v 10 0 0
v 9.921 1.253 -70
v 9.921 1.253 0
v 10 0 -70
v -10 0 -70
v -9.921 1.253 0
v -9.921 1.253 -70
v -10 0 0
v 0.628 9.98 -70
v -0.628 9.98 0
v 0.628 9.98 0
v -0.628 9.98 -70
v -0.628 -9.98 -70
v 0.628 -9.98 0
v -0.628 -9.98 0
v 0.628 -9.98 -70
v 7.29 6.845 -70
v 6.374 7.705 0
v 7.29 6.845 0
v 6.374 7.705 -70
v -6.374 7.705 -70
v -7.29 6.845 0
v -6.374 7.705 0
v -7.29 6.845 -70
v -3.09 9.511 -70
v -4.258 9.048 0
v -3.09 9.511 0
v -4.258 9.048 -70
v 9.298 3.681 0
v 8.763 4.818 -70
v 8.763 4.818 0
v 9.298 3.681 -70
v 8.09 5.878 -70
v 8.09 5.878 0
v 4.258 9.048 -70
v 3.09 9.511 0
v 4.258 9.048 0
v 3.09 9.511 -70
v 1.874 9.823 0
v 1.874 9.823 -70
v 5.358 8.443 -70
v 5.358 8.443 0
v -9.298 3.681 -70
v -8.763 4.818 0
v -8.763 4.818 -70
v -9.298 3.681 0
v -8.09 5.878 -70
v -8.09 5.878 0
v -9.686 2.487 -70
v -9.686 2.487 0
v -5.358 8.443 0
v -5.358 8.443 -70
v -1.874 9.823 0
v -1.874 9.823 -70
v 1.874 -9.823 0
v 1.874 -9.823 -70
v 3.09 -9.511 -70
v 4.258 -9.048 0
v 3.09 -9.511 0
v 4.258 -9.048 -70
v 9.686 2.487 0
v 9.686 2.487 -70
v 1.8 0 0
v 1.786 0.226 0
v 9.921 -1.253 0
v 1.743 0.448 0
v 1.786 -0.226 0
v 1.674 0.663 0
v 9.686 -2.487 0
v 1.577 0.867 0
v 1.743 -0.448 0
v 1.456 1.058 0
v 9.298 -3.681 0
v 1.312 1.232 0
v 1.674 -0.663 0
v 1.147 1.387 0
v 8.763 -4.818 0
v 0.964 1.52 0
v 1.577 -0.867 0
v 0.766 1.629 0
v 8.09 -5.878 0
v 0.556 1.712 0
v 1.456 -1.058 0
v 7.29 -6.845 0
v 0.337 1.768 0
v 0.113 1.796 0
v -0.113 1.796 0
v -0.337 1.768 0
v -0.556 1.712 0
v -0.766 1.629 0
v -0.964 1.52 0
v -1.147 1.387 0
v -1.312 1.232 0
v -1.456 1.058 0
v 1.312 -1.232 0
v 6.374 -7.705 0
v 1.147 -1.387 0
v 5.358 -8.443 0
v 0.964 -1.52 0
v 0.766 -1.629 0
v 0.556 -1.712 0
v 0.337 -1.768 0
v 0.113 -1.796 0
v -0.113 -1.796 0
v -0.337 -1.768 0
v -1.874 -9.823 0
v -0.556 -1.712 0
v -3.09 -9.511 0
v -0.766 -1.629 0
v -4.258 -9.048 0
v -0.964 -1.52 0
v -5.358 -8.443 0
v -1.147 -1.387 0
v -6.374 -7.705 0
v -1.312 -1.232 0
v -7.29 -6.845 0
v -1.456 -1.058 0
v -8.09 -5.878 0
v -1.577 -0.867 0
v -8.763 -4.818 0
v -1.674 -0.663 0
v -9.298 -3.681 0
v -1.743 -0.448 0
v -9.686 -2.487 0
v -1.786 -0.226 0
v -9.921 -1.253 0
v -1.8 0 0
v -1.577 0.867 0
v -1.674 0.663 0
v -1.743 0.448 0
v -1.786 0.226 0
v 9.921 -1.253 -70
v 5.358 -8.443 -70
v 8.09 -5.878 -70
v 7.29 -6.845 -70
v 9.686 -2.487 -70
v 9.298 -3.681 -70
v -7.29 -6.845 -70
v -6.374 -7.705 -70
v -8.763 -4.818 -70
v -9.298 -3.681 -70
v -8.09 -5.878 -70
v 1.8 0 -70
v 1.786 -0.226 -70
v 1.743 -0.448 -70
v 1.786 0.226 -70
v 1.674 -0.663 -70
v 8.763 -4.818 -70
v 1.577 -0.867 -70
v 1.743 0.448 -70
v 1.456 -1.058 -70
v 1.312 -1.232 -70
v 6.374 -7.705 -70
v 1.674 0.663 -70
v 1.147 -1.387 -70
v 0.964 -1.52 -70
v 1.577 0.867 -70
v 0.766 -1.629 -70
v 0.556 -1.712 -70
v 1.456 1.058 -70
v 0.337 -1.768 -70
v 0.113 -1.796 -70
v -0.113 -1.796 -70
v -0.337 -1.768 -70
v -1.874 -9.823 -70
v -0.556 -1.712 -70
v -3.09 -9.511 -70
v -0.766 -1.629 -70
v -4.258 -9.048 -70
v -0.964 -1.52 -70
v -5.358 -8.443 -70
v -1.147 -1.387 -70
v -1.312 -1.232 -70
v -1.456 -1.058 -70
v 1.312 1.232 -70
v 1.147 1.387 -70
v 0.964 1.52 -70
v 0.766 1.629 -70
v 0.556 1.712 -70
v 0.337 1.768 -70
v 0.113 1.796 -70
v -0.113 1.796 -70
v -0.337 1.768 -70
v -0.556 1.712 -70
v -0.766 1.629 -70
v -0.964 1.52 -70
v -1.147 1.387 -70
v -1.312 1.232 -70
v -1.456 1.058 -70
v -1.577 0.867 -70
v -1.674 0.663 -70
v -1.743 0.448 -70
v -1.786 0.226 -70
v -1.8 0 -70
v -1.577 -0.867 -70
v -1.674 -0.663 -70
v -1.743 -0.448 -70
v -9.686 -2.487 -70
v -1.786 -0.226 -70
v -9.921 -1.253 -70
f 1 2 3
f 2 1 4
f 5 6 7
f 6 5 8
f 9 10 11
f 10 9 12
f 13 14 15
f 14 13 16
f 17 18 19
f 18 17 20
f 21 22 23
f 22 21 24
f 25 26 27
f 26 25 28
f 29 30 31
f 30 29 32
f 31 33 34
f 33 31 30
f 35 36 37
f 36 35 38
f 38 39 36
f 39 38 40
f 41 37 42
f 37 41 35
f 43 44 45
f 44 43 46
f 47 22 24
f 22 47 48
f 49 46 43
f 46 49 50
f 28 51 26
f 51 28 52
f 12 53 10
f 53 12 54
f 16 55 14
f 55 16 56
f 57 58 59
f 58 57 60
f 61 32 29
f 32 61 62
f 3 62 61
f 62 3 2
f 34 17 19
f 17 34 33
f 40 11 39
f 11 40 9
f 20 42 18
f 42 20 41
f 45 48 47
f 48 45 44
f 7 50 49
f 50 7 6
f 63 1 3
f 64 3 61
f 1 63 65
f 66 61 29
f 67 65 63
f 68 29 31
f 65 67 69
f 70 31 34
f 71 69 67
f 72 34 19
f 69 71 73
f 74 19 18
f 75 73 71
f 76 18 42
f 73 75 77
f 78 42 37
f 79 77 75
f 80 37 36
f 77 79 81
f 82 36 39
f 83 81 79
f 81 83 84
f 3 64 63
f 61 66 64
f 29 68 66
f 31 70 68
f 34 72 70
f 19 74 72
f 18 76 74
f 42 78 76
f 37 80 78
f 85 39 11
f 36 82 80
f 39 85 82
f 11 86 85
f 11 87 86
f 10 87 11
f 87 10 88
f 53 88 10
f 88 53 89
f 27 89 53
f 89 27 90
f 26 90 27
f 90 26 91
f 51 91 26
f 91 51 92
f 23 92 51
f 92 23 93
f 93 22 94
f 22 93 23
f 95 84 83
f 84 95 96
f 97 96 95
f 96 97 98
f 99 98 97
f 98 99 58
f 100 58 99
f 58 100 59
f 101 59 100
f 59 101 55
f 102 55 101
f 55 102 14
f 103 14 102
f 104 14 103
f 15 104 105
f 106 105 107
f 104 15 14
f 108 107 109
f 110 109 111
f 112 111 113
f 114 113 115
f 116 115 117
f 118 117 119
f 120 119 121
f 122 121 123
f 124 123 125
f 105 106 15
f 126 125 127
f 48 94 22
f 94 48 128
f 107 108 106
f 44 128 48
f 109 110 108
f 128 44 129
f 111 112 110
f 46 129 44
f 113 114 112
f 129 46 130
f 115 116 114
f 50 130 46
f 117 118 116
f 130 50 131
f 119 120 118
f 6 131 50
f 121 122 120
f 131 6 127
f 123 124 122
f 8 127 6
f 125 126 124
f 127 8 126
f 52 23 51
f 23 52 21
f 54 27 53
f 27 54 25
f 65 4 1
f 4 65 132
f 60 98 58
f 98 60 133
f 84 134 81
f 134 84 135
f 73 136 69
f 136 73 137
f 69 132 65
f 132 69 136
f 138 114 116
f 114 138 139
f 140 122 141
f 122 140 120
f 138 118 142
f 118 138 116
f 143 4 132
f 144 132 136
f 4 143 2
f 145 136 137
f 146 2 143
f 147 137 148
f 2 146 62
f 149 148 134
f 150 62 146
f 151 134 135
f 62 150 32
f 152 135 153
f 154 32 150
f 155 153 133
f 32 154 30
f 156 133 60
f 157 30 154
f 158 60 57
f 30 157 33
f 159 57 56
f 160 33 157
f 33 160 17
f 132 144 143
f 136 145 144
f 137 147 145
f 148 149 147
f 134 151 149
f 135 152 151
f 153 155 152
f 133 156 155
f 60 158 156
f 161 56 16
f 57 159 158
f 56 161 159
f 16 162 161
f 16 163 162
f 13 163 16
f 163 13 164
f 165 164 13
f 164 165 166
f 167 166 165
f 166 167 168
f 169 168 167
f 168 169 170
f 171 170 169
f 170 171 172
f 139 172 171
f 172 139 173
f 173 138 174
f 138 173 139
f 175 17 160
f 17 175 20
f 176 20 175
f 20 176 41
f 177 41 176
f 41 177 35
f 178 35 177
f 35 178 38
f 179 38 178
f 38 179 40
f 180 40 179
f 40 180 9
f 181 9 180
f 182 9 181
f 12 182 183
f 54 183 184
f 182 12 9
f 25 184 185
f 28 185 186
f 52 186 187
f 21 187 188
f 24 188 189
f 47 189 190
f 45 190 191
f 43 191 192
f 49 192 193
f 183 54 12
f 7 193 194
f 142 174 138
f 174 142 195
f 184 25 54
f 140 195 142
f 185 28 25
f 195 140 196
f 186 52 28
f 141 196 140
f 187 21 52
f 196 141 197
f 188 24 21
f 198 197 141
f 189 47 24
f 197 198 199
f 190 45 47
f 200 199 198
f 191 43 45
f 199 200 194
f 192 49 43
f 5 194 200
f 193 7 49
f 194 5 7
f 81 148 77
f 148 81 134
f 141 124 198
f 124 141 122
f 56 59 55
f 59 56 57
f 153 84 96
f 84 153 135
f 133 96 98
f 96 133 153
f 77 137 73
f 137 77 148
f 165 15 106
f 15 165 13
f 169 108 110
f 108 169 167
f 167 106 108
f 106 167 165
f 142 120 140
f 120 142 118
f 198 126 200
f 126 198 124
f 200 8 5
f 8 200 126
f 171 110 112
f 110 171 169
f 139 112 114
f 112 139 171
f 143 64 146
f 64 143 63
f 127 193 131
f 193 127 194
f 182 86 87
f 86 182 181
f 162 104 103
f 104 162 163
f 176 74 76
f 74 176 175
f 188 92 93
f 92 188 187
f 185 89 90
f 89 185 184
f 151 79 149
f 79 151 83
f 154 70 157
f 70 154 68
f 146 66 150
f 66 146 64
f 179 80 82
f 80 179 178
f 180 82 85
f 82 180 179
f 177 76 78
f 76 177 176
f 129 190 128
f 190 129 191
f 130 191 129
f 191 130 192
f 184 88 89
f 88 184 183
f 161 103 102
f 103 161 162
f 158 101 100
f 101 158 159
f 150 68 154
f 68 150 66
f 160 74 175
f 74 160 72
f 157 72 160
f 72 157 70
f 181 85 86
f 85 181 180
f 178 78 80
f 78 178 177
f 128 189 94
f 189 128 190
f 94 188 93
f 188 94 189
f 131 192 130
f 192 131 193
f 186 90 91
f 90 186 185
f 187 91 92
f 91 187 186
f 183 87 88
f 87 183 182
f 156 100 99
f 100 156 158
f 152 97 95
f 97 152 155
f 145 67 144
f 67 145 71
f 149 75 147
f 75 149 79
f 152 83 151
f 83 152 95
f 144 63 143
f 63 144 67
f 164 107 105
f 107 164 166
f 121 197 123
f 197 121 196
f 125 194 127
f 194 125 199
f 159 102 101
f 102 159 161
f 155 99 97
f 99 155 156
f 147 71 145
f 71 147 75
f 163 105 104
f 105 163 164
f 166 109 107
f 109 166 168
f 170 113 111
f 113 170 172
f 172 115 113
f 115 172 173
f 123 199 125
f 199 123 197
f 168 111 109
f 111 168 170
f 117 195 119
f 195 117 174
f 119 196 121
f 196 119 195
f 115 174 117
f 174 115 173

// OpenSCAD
$fn = 50;


difference() {
	union() {
		translate(v = [0, 0, -70.0000000000]) {
			cylinder(h = 70, r = 10.0000000000);
		}
		cylinder(h = 0, r = 19.0000000000);
	}
	union() {
		#translate(v = [0, 0, -70]) {
			cylinder(h = 70, r = 1.8000000000);
		}
	}
}
